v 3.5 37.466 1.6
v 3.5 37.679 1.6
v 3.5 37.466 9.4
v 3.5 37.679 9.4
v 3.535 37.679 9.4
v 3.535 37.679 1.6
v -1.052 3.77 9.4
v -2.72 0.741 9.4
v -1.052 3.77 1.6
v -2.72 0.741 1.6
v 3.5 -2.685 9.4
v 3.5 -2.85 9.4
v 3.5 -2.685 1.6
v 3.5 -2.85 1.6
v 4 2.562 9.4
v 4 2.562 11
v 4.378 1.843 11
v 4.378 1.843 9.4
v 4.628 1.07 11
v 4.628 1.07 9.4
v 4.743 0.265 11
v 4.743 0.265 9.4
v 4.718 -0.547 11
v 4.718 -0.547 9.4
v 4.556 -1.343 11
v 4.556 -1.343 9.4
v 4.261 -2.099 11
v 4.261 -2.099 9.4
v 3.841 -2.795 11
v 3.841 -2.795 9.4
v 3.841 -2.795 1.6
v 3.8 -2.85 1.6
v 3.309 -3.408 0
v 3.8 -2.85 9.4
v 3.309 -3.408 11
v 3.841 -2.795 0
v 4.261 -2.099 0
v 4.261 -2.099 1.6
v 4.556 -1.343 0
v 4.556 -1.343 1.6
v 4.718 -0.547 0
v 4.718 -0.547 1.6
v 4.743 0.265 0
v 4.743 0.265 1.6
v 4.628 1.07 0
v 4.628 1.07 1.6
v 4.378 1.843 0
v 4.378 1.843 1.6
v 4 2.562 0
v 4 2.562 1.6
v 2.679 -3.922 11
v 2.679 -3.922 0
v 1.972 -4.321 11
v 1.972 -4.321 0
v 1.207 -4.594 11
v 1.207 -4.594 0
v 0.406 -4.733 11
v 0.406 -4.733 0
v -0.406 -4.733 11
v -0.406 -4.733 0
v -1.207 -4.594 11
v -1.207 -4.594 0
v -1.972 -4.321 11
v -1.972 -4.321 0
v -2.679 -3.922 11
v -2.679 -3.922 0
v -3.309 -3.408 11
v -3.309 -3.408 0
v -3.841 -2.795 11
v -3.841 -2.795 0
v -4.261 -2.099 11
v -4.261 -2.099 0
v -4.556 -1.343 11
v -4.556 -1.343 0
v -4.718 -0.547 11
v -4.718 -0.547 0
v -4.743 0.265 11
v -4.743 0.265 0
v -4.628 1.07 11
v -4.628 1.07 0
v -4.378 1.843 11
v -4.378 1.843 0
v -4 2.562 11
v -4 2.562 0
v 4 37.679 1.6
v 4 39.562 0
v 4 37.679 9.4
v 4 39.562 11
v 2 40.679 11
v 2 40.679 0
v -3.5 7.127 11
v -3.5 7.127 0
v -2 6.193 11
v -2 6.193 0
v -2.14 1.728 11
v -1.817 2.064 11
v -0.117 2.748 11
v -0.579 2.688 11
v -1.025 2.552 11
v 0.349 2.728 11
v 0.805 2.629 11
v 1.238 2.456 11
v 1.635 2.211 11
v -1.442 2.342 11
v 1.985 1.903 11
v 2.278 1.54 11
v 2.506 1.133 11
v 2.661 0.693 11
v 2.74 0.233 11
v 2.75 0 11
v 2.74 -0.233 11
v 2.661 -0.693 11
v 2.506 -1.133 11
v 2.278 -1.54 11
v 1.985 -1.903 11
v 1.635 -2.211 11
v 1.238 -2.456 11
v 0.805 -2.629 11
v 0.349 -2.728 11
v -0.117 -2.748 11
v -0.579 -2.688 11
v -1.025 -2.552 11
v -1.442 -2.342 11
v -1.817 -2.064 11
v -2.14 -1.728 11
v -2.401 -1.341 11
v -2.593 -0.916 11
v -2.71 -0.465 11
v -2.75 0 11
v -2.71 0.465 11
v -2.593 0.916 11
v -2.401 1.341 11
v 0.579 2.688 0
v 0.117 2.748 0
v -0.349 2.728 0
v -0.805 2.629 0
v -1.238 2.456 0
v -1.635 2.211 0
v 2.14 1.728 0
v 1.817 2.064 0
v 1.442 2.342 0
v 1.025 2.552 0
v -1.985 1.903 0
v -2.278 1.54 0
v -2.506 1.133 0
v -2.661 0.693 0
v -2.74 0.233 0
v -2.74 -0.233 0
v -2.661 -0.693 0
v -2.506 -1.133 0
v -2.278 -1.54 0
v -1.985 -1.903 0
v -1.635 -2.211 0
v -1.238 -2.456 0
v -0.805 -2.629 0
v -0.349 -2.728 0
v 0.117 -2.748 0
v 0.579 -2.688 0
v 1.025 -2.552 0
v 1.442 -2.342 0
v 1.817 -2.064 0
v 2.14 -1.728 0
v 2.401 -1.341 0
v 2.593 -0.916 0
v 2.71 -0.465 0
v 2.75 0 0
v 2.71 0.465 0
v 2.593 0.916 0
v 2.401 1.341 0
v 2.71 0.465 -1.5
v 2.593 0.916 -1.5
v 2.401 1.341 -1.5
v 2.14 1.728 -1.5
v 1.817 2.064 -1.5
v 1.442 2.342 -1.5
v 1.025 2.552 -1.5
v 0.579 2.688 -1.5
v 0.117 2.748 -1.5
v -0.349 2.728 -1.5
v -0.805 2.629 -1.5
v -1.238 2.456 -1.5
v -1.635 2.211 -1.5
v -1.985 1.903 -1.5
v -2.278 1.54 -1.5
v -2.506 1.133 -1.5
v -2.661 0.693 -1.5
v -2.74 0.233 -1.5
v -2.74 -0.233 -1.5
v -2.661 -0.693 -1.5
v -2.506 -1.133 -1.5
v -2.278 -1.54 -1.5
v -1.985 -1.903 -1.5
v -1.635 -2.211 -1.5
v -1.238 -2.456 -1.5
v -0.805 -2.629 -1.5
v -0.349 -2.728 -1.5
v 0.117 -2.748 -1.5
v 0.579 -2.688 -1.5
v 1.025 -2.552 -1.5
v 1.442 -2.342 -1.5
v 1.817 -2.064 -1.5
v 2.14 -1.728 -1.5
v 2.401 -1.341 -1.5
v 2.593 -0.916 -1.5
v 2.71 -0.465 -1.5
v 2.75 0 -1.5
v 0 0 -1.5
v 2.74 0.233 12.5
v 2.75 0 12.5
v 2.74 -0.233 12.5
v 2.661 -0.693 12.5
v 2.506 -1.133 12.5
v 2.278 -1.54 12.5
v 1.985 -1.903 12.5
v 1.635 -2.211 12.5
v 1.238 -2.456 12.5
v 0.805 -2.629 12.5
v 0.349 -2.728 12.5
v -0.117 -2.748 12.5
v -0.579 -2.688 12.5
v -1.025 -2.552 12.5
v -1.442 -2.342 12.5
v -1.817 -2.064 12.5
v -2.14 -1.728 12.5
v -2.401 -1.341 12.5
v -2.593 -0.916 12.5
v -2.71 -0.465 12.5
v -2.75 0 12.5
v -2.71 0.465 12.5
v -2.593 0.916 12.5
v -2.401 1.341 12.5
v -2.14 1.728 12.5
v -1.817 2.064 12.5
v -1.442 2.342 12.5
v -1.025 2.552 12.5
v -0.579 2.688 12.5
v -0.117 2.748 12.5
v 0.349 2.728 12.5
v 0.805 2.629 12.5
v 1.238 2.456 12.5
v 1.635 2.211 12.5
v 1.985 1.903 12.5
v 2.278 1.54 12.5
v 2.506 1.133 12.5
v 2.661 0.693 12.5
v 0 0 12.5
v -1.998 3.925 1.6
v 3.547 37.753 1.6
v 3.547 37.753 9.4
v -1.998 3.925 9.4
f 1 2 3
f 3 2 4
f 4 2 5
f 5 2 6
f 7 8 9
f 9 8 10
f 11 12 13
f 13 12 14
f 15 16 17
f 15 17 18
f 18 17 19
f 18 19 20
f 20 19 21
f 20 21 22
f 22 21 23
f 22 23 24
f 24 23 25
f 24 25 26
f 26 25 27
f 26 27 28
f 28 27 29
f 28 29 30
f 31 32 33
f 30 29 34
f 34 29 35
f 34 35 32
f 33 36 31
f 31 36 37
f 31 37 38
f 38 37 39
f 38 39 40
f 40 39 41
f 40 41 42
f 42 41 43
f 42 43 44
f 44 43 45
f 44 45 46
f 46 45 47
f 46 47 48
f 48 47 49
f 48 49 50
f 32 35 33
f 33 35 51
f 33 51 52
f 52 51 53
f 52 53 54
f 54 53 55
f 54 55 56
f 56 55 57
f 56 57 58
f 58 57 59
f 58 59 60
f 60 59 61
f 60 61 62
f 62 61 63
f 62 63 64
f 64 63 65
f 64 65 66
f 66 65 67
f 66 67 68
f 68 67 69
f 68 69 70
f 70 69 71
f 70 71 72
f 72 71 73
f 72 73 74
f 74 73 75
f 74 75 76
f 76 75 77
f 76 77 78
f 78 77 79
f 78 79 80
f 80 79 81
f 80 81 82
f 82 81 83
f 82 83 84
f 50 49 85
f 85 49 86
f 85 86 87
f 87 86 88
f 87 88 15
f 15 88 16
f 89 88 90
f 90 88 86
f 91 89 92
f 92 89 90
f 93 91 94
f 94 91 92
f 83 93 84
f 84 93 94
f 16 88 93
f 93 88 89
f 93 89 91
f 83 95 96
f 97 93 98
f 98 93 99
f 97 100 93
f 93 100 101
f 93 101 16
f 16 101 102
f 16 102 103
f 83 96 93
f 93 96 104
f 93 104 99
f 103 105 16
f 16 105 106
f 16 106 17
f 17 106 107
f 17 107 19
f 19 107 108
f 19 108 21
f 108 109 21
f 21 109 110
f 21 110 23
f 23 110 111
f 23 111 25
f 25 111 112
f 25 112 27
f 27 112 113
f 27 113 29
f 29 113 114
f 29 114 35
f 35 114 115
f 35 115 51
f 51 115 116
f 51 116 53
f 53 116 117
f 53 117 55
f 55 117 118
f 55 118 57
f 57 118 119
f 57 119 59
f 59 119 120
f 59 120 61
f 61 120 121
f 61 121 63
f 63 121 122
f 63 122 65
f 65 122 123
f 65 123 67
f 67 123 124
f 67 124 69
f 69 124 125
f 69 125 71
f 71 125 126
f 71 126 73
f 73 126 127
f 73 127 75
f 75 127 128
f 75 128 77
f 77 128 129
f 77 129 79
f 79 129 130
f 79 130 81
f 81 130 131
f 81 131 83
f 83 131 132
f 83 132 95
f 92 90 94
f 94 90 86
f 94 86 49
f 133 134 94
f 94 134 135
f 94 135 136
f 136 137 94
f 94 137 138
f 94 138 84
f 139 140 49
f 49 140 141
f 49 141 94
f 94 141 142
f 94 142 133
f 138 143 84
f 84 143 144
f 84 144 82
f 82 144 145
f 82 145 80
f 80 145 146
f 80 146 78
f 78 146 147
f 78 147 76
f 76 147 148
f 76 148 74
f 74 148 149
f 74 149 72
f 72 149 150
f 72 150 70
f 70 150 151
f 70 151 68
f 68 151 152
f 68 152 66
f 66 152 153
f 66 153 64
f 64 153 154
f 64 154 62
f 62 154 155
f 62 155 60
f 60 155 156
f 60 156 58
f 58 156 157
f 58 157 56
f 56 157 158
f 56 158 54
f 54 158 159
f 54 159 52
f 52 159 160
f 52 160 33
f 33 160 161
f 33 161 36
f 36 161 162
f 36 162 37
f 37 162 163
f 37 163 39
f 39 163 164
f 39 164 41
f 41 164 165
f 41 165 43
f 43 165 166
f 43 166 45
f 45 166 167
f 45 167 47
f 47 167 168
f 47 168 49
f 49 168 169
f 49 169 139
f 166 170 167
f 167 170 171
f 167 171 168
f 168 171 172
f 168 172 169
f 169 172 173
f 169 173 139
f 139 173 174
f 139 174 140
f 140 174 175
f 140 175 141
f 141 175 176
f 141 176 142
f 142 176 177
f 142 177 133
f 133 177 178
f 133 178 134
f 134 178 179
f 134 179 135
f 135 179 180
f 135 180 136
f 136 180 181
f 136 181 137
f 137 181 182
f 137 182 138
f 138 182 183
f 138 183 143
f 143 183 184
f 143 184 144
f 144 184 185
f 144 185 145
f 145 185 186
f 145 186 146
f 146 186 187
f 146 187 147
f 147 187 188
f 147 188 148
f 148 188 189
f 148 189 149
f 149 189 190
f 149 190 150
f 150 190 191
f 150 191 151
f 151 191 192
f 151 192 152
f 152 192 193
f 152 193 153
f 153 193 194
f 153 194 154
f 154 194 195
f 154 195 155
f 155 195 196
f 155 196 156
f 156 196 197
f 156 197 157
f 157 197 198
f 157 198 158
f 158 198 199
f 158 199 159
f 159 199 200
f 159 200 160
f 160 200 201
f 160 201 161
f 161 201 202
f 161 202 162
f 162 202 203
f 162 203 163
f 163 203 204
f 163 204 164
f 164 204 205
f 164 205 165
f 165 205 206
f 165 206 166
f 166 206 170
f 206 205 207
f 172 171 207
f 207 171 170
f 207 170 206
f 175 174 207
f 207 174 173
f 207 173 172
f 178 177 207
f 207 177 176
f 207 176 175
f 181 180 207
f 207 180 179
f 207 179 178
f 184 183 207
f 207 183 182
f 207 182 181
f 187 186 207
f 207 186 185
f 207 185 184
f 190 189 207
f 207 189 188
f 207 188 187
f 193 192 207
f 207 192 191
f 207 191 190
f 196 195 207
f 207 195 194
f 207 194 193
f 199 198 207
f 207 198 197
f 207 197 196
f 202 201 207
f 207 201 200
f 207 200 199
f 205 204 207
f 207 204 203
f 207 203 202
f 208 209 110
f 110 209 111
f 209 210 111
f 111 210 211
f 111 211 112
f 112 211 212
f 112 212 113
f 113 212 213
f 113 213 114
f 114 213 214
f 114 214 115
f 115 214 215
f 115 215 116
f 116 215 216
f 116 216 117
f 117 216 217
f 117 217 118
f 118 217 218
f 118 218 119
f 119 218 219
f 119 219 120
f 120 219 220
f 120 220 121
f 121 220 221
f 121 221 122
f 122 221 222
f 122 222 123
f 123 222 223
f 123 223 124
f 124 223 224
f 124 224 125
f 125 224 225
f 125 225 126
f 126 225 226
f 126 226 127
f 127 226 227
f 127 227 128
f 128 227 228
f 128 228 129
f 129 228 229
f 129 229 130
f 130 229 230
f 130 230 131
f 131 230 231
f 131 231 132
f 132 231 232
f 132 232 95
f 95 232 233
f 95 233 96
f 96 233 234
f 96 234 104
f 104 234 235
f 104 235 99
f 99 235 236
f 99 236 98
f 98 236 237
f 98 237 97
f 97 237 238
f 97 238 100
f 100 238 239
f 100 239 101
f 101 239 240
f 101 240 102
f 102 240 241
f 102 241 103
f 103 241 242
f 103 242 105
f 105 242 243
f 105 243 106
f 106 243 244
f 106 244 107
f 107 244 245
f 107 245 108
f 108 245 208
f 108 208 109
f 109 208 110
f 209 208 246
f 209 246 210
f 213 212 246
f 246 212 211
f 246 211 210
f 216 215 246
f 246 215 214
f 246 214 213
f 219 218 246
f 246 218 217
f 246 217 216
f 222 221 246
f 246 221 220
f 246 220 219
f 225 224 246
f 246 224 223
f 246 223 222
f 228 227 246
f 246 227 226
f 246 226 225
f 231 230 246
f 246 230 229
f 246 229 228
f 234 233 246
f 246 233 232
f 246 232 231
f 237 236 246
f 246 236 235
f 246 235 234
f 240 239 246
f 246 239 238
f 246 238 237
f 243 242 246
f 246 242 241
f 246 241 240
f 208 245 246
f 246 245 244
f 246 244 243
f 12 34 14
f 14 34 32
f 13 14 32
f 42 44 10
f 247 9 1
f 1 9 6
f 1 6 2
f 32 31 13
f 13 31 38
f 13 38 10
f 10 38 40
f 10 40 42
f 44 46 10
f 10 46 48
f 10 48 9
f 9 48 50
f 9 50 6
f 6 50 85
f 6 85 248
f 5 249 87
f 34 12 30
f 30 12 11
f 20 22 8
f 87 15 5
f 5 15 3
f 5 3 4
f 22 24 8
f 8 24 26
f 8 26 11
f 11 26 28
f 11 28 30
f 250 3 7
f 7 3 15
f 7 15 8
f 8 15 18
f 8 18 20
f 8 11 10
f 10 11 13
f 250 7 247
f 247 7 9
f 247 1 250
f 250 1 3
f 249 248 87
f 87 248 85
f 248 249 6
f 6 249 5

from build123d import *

# Parameters (mm, degrees)
BOSS_EXTRU_1_DEPTH      = 11
ESQUISSE2_R             = 2.75
BOSS_EXTRU_2_DEPTH      = 1.5
BOSS_EXTRU_3_START      = 1.5
ESQUISSE3_R             = 2.75
BOSS_EXTRU_3_DEPTH      = 1.5
ESQUISSE5_W             = 7.8
ESQUISSE5_H             = 40.529247283
ENL_V_MAT_EXTRU_1_DEPTH = 10.5
ESQUISSE6_W             = 7.8
ESQUISSE6_H             = 5
ENL_V_MAT_EXTRU_2_DEPTH = 8
ESQUISSE7_W             = 7.8
ESQUISSE7_H             = 34.280292999
ENL_V_MAT_EXTRU_3_DEPTH = 8


with BuildPart() as part:
    # Esquisse1 → Boss.-Extru.1 (new body)
    with BuildSketch(Plane.XY):
        with BuildLine():
            Line((4, 2.561737691), (4, 39.561737691))
            Line((4, 39.561737691), (2, 40.679247283))
            Line((2, 40.679247283), (-3.5, 7.127049143))
            Line((-3.5, 7.127049143), (-2, 6.193131027))
            Line((-2, 6.193131027), (-4, 2.561737691))
            ThreePointArc((-4, 2.561737691), (0, -4.75), (4, 2.561737691))
        make_face()
    extrude(amount=BOSS_EXTRU_1_DEPTH)

    # Esquisse2 → Boss.-Extru.2 (add)
    with BuildSketch(Plane.XY):
        Circle(ESQUISSE2_R)
    extrude(amount=-BOSS_EXTRU_2_DEPTH)

    # Esquisse3 → Boss.-Extru.3 (add)
    with BuildSketch(Plane.XY.offset(11).offset(BOSS_EXTRU_3_START)):
        Circle(ESQUISSE3_R)
    extrude(amount=-BOSS_EXTRU_3_DEPTH)

    # Esquisse5 → Enlèv. mat.-Extru.1 (cut)
    with BuildSketch(Plane(origin=(14, 0, 0), x_dir=(0, 0, -1), z_dir=(1, 0, 0))):
        with Locations((-5.5, 17.414623642)):
            Rectangle(ESQUISSE5_W, ESQUISSE5_H)
    extrude(amount=-ENL_V_MAT_EXTRU_1_DEPTH, mode=Mode.SUBTRACT)

    # Esquisse6 → Enlèv. mat.-Extru.2 (cut)
    with BuildSketch(Plane(origin=(4.607784726, -2.537750279, 0), x_dir=(0, 0, 1), z_dir=(-0.8759373234553582, 0.4824249220115637, 0))):
        with Locations((5.5, 1.836793332)):
            Rectangle(ESQUISSE6_W, ESQUISSE6_H)
    extrude(amount=ENL_V_MAT_EXTRU_2_DEPTH, mode=Mode.SUBTRACT)

    # Esquisse7 → Enlèv. mat.-Extru.3 (cut)
    with BuildSketch(Plane(origin=(5.322160432, -0.872428157, 0), x_dir=(0, 0, 1), z_dir=(-0.986829357047507, 0.16176470588235298, 0))):
        with Locations((5.5, 20.689899695)):
            Rectangle(ESQUISSE7_W, ESQUISSE7_H)
    extrude(amount=ENL_V_MAT_EXTRU_3_DEPTH, mode=Mode.SUBTRACT)


solid = part.part
